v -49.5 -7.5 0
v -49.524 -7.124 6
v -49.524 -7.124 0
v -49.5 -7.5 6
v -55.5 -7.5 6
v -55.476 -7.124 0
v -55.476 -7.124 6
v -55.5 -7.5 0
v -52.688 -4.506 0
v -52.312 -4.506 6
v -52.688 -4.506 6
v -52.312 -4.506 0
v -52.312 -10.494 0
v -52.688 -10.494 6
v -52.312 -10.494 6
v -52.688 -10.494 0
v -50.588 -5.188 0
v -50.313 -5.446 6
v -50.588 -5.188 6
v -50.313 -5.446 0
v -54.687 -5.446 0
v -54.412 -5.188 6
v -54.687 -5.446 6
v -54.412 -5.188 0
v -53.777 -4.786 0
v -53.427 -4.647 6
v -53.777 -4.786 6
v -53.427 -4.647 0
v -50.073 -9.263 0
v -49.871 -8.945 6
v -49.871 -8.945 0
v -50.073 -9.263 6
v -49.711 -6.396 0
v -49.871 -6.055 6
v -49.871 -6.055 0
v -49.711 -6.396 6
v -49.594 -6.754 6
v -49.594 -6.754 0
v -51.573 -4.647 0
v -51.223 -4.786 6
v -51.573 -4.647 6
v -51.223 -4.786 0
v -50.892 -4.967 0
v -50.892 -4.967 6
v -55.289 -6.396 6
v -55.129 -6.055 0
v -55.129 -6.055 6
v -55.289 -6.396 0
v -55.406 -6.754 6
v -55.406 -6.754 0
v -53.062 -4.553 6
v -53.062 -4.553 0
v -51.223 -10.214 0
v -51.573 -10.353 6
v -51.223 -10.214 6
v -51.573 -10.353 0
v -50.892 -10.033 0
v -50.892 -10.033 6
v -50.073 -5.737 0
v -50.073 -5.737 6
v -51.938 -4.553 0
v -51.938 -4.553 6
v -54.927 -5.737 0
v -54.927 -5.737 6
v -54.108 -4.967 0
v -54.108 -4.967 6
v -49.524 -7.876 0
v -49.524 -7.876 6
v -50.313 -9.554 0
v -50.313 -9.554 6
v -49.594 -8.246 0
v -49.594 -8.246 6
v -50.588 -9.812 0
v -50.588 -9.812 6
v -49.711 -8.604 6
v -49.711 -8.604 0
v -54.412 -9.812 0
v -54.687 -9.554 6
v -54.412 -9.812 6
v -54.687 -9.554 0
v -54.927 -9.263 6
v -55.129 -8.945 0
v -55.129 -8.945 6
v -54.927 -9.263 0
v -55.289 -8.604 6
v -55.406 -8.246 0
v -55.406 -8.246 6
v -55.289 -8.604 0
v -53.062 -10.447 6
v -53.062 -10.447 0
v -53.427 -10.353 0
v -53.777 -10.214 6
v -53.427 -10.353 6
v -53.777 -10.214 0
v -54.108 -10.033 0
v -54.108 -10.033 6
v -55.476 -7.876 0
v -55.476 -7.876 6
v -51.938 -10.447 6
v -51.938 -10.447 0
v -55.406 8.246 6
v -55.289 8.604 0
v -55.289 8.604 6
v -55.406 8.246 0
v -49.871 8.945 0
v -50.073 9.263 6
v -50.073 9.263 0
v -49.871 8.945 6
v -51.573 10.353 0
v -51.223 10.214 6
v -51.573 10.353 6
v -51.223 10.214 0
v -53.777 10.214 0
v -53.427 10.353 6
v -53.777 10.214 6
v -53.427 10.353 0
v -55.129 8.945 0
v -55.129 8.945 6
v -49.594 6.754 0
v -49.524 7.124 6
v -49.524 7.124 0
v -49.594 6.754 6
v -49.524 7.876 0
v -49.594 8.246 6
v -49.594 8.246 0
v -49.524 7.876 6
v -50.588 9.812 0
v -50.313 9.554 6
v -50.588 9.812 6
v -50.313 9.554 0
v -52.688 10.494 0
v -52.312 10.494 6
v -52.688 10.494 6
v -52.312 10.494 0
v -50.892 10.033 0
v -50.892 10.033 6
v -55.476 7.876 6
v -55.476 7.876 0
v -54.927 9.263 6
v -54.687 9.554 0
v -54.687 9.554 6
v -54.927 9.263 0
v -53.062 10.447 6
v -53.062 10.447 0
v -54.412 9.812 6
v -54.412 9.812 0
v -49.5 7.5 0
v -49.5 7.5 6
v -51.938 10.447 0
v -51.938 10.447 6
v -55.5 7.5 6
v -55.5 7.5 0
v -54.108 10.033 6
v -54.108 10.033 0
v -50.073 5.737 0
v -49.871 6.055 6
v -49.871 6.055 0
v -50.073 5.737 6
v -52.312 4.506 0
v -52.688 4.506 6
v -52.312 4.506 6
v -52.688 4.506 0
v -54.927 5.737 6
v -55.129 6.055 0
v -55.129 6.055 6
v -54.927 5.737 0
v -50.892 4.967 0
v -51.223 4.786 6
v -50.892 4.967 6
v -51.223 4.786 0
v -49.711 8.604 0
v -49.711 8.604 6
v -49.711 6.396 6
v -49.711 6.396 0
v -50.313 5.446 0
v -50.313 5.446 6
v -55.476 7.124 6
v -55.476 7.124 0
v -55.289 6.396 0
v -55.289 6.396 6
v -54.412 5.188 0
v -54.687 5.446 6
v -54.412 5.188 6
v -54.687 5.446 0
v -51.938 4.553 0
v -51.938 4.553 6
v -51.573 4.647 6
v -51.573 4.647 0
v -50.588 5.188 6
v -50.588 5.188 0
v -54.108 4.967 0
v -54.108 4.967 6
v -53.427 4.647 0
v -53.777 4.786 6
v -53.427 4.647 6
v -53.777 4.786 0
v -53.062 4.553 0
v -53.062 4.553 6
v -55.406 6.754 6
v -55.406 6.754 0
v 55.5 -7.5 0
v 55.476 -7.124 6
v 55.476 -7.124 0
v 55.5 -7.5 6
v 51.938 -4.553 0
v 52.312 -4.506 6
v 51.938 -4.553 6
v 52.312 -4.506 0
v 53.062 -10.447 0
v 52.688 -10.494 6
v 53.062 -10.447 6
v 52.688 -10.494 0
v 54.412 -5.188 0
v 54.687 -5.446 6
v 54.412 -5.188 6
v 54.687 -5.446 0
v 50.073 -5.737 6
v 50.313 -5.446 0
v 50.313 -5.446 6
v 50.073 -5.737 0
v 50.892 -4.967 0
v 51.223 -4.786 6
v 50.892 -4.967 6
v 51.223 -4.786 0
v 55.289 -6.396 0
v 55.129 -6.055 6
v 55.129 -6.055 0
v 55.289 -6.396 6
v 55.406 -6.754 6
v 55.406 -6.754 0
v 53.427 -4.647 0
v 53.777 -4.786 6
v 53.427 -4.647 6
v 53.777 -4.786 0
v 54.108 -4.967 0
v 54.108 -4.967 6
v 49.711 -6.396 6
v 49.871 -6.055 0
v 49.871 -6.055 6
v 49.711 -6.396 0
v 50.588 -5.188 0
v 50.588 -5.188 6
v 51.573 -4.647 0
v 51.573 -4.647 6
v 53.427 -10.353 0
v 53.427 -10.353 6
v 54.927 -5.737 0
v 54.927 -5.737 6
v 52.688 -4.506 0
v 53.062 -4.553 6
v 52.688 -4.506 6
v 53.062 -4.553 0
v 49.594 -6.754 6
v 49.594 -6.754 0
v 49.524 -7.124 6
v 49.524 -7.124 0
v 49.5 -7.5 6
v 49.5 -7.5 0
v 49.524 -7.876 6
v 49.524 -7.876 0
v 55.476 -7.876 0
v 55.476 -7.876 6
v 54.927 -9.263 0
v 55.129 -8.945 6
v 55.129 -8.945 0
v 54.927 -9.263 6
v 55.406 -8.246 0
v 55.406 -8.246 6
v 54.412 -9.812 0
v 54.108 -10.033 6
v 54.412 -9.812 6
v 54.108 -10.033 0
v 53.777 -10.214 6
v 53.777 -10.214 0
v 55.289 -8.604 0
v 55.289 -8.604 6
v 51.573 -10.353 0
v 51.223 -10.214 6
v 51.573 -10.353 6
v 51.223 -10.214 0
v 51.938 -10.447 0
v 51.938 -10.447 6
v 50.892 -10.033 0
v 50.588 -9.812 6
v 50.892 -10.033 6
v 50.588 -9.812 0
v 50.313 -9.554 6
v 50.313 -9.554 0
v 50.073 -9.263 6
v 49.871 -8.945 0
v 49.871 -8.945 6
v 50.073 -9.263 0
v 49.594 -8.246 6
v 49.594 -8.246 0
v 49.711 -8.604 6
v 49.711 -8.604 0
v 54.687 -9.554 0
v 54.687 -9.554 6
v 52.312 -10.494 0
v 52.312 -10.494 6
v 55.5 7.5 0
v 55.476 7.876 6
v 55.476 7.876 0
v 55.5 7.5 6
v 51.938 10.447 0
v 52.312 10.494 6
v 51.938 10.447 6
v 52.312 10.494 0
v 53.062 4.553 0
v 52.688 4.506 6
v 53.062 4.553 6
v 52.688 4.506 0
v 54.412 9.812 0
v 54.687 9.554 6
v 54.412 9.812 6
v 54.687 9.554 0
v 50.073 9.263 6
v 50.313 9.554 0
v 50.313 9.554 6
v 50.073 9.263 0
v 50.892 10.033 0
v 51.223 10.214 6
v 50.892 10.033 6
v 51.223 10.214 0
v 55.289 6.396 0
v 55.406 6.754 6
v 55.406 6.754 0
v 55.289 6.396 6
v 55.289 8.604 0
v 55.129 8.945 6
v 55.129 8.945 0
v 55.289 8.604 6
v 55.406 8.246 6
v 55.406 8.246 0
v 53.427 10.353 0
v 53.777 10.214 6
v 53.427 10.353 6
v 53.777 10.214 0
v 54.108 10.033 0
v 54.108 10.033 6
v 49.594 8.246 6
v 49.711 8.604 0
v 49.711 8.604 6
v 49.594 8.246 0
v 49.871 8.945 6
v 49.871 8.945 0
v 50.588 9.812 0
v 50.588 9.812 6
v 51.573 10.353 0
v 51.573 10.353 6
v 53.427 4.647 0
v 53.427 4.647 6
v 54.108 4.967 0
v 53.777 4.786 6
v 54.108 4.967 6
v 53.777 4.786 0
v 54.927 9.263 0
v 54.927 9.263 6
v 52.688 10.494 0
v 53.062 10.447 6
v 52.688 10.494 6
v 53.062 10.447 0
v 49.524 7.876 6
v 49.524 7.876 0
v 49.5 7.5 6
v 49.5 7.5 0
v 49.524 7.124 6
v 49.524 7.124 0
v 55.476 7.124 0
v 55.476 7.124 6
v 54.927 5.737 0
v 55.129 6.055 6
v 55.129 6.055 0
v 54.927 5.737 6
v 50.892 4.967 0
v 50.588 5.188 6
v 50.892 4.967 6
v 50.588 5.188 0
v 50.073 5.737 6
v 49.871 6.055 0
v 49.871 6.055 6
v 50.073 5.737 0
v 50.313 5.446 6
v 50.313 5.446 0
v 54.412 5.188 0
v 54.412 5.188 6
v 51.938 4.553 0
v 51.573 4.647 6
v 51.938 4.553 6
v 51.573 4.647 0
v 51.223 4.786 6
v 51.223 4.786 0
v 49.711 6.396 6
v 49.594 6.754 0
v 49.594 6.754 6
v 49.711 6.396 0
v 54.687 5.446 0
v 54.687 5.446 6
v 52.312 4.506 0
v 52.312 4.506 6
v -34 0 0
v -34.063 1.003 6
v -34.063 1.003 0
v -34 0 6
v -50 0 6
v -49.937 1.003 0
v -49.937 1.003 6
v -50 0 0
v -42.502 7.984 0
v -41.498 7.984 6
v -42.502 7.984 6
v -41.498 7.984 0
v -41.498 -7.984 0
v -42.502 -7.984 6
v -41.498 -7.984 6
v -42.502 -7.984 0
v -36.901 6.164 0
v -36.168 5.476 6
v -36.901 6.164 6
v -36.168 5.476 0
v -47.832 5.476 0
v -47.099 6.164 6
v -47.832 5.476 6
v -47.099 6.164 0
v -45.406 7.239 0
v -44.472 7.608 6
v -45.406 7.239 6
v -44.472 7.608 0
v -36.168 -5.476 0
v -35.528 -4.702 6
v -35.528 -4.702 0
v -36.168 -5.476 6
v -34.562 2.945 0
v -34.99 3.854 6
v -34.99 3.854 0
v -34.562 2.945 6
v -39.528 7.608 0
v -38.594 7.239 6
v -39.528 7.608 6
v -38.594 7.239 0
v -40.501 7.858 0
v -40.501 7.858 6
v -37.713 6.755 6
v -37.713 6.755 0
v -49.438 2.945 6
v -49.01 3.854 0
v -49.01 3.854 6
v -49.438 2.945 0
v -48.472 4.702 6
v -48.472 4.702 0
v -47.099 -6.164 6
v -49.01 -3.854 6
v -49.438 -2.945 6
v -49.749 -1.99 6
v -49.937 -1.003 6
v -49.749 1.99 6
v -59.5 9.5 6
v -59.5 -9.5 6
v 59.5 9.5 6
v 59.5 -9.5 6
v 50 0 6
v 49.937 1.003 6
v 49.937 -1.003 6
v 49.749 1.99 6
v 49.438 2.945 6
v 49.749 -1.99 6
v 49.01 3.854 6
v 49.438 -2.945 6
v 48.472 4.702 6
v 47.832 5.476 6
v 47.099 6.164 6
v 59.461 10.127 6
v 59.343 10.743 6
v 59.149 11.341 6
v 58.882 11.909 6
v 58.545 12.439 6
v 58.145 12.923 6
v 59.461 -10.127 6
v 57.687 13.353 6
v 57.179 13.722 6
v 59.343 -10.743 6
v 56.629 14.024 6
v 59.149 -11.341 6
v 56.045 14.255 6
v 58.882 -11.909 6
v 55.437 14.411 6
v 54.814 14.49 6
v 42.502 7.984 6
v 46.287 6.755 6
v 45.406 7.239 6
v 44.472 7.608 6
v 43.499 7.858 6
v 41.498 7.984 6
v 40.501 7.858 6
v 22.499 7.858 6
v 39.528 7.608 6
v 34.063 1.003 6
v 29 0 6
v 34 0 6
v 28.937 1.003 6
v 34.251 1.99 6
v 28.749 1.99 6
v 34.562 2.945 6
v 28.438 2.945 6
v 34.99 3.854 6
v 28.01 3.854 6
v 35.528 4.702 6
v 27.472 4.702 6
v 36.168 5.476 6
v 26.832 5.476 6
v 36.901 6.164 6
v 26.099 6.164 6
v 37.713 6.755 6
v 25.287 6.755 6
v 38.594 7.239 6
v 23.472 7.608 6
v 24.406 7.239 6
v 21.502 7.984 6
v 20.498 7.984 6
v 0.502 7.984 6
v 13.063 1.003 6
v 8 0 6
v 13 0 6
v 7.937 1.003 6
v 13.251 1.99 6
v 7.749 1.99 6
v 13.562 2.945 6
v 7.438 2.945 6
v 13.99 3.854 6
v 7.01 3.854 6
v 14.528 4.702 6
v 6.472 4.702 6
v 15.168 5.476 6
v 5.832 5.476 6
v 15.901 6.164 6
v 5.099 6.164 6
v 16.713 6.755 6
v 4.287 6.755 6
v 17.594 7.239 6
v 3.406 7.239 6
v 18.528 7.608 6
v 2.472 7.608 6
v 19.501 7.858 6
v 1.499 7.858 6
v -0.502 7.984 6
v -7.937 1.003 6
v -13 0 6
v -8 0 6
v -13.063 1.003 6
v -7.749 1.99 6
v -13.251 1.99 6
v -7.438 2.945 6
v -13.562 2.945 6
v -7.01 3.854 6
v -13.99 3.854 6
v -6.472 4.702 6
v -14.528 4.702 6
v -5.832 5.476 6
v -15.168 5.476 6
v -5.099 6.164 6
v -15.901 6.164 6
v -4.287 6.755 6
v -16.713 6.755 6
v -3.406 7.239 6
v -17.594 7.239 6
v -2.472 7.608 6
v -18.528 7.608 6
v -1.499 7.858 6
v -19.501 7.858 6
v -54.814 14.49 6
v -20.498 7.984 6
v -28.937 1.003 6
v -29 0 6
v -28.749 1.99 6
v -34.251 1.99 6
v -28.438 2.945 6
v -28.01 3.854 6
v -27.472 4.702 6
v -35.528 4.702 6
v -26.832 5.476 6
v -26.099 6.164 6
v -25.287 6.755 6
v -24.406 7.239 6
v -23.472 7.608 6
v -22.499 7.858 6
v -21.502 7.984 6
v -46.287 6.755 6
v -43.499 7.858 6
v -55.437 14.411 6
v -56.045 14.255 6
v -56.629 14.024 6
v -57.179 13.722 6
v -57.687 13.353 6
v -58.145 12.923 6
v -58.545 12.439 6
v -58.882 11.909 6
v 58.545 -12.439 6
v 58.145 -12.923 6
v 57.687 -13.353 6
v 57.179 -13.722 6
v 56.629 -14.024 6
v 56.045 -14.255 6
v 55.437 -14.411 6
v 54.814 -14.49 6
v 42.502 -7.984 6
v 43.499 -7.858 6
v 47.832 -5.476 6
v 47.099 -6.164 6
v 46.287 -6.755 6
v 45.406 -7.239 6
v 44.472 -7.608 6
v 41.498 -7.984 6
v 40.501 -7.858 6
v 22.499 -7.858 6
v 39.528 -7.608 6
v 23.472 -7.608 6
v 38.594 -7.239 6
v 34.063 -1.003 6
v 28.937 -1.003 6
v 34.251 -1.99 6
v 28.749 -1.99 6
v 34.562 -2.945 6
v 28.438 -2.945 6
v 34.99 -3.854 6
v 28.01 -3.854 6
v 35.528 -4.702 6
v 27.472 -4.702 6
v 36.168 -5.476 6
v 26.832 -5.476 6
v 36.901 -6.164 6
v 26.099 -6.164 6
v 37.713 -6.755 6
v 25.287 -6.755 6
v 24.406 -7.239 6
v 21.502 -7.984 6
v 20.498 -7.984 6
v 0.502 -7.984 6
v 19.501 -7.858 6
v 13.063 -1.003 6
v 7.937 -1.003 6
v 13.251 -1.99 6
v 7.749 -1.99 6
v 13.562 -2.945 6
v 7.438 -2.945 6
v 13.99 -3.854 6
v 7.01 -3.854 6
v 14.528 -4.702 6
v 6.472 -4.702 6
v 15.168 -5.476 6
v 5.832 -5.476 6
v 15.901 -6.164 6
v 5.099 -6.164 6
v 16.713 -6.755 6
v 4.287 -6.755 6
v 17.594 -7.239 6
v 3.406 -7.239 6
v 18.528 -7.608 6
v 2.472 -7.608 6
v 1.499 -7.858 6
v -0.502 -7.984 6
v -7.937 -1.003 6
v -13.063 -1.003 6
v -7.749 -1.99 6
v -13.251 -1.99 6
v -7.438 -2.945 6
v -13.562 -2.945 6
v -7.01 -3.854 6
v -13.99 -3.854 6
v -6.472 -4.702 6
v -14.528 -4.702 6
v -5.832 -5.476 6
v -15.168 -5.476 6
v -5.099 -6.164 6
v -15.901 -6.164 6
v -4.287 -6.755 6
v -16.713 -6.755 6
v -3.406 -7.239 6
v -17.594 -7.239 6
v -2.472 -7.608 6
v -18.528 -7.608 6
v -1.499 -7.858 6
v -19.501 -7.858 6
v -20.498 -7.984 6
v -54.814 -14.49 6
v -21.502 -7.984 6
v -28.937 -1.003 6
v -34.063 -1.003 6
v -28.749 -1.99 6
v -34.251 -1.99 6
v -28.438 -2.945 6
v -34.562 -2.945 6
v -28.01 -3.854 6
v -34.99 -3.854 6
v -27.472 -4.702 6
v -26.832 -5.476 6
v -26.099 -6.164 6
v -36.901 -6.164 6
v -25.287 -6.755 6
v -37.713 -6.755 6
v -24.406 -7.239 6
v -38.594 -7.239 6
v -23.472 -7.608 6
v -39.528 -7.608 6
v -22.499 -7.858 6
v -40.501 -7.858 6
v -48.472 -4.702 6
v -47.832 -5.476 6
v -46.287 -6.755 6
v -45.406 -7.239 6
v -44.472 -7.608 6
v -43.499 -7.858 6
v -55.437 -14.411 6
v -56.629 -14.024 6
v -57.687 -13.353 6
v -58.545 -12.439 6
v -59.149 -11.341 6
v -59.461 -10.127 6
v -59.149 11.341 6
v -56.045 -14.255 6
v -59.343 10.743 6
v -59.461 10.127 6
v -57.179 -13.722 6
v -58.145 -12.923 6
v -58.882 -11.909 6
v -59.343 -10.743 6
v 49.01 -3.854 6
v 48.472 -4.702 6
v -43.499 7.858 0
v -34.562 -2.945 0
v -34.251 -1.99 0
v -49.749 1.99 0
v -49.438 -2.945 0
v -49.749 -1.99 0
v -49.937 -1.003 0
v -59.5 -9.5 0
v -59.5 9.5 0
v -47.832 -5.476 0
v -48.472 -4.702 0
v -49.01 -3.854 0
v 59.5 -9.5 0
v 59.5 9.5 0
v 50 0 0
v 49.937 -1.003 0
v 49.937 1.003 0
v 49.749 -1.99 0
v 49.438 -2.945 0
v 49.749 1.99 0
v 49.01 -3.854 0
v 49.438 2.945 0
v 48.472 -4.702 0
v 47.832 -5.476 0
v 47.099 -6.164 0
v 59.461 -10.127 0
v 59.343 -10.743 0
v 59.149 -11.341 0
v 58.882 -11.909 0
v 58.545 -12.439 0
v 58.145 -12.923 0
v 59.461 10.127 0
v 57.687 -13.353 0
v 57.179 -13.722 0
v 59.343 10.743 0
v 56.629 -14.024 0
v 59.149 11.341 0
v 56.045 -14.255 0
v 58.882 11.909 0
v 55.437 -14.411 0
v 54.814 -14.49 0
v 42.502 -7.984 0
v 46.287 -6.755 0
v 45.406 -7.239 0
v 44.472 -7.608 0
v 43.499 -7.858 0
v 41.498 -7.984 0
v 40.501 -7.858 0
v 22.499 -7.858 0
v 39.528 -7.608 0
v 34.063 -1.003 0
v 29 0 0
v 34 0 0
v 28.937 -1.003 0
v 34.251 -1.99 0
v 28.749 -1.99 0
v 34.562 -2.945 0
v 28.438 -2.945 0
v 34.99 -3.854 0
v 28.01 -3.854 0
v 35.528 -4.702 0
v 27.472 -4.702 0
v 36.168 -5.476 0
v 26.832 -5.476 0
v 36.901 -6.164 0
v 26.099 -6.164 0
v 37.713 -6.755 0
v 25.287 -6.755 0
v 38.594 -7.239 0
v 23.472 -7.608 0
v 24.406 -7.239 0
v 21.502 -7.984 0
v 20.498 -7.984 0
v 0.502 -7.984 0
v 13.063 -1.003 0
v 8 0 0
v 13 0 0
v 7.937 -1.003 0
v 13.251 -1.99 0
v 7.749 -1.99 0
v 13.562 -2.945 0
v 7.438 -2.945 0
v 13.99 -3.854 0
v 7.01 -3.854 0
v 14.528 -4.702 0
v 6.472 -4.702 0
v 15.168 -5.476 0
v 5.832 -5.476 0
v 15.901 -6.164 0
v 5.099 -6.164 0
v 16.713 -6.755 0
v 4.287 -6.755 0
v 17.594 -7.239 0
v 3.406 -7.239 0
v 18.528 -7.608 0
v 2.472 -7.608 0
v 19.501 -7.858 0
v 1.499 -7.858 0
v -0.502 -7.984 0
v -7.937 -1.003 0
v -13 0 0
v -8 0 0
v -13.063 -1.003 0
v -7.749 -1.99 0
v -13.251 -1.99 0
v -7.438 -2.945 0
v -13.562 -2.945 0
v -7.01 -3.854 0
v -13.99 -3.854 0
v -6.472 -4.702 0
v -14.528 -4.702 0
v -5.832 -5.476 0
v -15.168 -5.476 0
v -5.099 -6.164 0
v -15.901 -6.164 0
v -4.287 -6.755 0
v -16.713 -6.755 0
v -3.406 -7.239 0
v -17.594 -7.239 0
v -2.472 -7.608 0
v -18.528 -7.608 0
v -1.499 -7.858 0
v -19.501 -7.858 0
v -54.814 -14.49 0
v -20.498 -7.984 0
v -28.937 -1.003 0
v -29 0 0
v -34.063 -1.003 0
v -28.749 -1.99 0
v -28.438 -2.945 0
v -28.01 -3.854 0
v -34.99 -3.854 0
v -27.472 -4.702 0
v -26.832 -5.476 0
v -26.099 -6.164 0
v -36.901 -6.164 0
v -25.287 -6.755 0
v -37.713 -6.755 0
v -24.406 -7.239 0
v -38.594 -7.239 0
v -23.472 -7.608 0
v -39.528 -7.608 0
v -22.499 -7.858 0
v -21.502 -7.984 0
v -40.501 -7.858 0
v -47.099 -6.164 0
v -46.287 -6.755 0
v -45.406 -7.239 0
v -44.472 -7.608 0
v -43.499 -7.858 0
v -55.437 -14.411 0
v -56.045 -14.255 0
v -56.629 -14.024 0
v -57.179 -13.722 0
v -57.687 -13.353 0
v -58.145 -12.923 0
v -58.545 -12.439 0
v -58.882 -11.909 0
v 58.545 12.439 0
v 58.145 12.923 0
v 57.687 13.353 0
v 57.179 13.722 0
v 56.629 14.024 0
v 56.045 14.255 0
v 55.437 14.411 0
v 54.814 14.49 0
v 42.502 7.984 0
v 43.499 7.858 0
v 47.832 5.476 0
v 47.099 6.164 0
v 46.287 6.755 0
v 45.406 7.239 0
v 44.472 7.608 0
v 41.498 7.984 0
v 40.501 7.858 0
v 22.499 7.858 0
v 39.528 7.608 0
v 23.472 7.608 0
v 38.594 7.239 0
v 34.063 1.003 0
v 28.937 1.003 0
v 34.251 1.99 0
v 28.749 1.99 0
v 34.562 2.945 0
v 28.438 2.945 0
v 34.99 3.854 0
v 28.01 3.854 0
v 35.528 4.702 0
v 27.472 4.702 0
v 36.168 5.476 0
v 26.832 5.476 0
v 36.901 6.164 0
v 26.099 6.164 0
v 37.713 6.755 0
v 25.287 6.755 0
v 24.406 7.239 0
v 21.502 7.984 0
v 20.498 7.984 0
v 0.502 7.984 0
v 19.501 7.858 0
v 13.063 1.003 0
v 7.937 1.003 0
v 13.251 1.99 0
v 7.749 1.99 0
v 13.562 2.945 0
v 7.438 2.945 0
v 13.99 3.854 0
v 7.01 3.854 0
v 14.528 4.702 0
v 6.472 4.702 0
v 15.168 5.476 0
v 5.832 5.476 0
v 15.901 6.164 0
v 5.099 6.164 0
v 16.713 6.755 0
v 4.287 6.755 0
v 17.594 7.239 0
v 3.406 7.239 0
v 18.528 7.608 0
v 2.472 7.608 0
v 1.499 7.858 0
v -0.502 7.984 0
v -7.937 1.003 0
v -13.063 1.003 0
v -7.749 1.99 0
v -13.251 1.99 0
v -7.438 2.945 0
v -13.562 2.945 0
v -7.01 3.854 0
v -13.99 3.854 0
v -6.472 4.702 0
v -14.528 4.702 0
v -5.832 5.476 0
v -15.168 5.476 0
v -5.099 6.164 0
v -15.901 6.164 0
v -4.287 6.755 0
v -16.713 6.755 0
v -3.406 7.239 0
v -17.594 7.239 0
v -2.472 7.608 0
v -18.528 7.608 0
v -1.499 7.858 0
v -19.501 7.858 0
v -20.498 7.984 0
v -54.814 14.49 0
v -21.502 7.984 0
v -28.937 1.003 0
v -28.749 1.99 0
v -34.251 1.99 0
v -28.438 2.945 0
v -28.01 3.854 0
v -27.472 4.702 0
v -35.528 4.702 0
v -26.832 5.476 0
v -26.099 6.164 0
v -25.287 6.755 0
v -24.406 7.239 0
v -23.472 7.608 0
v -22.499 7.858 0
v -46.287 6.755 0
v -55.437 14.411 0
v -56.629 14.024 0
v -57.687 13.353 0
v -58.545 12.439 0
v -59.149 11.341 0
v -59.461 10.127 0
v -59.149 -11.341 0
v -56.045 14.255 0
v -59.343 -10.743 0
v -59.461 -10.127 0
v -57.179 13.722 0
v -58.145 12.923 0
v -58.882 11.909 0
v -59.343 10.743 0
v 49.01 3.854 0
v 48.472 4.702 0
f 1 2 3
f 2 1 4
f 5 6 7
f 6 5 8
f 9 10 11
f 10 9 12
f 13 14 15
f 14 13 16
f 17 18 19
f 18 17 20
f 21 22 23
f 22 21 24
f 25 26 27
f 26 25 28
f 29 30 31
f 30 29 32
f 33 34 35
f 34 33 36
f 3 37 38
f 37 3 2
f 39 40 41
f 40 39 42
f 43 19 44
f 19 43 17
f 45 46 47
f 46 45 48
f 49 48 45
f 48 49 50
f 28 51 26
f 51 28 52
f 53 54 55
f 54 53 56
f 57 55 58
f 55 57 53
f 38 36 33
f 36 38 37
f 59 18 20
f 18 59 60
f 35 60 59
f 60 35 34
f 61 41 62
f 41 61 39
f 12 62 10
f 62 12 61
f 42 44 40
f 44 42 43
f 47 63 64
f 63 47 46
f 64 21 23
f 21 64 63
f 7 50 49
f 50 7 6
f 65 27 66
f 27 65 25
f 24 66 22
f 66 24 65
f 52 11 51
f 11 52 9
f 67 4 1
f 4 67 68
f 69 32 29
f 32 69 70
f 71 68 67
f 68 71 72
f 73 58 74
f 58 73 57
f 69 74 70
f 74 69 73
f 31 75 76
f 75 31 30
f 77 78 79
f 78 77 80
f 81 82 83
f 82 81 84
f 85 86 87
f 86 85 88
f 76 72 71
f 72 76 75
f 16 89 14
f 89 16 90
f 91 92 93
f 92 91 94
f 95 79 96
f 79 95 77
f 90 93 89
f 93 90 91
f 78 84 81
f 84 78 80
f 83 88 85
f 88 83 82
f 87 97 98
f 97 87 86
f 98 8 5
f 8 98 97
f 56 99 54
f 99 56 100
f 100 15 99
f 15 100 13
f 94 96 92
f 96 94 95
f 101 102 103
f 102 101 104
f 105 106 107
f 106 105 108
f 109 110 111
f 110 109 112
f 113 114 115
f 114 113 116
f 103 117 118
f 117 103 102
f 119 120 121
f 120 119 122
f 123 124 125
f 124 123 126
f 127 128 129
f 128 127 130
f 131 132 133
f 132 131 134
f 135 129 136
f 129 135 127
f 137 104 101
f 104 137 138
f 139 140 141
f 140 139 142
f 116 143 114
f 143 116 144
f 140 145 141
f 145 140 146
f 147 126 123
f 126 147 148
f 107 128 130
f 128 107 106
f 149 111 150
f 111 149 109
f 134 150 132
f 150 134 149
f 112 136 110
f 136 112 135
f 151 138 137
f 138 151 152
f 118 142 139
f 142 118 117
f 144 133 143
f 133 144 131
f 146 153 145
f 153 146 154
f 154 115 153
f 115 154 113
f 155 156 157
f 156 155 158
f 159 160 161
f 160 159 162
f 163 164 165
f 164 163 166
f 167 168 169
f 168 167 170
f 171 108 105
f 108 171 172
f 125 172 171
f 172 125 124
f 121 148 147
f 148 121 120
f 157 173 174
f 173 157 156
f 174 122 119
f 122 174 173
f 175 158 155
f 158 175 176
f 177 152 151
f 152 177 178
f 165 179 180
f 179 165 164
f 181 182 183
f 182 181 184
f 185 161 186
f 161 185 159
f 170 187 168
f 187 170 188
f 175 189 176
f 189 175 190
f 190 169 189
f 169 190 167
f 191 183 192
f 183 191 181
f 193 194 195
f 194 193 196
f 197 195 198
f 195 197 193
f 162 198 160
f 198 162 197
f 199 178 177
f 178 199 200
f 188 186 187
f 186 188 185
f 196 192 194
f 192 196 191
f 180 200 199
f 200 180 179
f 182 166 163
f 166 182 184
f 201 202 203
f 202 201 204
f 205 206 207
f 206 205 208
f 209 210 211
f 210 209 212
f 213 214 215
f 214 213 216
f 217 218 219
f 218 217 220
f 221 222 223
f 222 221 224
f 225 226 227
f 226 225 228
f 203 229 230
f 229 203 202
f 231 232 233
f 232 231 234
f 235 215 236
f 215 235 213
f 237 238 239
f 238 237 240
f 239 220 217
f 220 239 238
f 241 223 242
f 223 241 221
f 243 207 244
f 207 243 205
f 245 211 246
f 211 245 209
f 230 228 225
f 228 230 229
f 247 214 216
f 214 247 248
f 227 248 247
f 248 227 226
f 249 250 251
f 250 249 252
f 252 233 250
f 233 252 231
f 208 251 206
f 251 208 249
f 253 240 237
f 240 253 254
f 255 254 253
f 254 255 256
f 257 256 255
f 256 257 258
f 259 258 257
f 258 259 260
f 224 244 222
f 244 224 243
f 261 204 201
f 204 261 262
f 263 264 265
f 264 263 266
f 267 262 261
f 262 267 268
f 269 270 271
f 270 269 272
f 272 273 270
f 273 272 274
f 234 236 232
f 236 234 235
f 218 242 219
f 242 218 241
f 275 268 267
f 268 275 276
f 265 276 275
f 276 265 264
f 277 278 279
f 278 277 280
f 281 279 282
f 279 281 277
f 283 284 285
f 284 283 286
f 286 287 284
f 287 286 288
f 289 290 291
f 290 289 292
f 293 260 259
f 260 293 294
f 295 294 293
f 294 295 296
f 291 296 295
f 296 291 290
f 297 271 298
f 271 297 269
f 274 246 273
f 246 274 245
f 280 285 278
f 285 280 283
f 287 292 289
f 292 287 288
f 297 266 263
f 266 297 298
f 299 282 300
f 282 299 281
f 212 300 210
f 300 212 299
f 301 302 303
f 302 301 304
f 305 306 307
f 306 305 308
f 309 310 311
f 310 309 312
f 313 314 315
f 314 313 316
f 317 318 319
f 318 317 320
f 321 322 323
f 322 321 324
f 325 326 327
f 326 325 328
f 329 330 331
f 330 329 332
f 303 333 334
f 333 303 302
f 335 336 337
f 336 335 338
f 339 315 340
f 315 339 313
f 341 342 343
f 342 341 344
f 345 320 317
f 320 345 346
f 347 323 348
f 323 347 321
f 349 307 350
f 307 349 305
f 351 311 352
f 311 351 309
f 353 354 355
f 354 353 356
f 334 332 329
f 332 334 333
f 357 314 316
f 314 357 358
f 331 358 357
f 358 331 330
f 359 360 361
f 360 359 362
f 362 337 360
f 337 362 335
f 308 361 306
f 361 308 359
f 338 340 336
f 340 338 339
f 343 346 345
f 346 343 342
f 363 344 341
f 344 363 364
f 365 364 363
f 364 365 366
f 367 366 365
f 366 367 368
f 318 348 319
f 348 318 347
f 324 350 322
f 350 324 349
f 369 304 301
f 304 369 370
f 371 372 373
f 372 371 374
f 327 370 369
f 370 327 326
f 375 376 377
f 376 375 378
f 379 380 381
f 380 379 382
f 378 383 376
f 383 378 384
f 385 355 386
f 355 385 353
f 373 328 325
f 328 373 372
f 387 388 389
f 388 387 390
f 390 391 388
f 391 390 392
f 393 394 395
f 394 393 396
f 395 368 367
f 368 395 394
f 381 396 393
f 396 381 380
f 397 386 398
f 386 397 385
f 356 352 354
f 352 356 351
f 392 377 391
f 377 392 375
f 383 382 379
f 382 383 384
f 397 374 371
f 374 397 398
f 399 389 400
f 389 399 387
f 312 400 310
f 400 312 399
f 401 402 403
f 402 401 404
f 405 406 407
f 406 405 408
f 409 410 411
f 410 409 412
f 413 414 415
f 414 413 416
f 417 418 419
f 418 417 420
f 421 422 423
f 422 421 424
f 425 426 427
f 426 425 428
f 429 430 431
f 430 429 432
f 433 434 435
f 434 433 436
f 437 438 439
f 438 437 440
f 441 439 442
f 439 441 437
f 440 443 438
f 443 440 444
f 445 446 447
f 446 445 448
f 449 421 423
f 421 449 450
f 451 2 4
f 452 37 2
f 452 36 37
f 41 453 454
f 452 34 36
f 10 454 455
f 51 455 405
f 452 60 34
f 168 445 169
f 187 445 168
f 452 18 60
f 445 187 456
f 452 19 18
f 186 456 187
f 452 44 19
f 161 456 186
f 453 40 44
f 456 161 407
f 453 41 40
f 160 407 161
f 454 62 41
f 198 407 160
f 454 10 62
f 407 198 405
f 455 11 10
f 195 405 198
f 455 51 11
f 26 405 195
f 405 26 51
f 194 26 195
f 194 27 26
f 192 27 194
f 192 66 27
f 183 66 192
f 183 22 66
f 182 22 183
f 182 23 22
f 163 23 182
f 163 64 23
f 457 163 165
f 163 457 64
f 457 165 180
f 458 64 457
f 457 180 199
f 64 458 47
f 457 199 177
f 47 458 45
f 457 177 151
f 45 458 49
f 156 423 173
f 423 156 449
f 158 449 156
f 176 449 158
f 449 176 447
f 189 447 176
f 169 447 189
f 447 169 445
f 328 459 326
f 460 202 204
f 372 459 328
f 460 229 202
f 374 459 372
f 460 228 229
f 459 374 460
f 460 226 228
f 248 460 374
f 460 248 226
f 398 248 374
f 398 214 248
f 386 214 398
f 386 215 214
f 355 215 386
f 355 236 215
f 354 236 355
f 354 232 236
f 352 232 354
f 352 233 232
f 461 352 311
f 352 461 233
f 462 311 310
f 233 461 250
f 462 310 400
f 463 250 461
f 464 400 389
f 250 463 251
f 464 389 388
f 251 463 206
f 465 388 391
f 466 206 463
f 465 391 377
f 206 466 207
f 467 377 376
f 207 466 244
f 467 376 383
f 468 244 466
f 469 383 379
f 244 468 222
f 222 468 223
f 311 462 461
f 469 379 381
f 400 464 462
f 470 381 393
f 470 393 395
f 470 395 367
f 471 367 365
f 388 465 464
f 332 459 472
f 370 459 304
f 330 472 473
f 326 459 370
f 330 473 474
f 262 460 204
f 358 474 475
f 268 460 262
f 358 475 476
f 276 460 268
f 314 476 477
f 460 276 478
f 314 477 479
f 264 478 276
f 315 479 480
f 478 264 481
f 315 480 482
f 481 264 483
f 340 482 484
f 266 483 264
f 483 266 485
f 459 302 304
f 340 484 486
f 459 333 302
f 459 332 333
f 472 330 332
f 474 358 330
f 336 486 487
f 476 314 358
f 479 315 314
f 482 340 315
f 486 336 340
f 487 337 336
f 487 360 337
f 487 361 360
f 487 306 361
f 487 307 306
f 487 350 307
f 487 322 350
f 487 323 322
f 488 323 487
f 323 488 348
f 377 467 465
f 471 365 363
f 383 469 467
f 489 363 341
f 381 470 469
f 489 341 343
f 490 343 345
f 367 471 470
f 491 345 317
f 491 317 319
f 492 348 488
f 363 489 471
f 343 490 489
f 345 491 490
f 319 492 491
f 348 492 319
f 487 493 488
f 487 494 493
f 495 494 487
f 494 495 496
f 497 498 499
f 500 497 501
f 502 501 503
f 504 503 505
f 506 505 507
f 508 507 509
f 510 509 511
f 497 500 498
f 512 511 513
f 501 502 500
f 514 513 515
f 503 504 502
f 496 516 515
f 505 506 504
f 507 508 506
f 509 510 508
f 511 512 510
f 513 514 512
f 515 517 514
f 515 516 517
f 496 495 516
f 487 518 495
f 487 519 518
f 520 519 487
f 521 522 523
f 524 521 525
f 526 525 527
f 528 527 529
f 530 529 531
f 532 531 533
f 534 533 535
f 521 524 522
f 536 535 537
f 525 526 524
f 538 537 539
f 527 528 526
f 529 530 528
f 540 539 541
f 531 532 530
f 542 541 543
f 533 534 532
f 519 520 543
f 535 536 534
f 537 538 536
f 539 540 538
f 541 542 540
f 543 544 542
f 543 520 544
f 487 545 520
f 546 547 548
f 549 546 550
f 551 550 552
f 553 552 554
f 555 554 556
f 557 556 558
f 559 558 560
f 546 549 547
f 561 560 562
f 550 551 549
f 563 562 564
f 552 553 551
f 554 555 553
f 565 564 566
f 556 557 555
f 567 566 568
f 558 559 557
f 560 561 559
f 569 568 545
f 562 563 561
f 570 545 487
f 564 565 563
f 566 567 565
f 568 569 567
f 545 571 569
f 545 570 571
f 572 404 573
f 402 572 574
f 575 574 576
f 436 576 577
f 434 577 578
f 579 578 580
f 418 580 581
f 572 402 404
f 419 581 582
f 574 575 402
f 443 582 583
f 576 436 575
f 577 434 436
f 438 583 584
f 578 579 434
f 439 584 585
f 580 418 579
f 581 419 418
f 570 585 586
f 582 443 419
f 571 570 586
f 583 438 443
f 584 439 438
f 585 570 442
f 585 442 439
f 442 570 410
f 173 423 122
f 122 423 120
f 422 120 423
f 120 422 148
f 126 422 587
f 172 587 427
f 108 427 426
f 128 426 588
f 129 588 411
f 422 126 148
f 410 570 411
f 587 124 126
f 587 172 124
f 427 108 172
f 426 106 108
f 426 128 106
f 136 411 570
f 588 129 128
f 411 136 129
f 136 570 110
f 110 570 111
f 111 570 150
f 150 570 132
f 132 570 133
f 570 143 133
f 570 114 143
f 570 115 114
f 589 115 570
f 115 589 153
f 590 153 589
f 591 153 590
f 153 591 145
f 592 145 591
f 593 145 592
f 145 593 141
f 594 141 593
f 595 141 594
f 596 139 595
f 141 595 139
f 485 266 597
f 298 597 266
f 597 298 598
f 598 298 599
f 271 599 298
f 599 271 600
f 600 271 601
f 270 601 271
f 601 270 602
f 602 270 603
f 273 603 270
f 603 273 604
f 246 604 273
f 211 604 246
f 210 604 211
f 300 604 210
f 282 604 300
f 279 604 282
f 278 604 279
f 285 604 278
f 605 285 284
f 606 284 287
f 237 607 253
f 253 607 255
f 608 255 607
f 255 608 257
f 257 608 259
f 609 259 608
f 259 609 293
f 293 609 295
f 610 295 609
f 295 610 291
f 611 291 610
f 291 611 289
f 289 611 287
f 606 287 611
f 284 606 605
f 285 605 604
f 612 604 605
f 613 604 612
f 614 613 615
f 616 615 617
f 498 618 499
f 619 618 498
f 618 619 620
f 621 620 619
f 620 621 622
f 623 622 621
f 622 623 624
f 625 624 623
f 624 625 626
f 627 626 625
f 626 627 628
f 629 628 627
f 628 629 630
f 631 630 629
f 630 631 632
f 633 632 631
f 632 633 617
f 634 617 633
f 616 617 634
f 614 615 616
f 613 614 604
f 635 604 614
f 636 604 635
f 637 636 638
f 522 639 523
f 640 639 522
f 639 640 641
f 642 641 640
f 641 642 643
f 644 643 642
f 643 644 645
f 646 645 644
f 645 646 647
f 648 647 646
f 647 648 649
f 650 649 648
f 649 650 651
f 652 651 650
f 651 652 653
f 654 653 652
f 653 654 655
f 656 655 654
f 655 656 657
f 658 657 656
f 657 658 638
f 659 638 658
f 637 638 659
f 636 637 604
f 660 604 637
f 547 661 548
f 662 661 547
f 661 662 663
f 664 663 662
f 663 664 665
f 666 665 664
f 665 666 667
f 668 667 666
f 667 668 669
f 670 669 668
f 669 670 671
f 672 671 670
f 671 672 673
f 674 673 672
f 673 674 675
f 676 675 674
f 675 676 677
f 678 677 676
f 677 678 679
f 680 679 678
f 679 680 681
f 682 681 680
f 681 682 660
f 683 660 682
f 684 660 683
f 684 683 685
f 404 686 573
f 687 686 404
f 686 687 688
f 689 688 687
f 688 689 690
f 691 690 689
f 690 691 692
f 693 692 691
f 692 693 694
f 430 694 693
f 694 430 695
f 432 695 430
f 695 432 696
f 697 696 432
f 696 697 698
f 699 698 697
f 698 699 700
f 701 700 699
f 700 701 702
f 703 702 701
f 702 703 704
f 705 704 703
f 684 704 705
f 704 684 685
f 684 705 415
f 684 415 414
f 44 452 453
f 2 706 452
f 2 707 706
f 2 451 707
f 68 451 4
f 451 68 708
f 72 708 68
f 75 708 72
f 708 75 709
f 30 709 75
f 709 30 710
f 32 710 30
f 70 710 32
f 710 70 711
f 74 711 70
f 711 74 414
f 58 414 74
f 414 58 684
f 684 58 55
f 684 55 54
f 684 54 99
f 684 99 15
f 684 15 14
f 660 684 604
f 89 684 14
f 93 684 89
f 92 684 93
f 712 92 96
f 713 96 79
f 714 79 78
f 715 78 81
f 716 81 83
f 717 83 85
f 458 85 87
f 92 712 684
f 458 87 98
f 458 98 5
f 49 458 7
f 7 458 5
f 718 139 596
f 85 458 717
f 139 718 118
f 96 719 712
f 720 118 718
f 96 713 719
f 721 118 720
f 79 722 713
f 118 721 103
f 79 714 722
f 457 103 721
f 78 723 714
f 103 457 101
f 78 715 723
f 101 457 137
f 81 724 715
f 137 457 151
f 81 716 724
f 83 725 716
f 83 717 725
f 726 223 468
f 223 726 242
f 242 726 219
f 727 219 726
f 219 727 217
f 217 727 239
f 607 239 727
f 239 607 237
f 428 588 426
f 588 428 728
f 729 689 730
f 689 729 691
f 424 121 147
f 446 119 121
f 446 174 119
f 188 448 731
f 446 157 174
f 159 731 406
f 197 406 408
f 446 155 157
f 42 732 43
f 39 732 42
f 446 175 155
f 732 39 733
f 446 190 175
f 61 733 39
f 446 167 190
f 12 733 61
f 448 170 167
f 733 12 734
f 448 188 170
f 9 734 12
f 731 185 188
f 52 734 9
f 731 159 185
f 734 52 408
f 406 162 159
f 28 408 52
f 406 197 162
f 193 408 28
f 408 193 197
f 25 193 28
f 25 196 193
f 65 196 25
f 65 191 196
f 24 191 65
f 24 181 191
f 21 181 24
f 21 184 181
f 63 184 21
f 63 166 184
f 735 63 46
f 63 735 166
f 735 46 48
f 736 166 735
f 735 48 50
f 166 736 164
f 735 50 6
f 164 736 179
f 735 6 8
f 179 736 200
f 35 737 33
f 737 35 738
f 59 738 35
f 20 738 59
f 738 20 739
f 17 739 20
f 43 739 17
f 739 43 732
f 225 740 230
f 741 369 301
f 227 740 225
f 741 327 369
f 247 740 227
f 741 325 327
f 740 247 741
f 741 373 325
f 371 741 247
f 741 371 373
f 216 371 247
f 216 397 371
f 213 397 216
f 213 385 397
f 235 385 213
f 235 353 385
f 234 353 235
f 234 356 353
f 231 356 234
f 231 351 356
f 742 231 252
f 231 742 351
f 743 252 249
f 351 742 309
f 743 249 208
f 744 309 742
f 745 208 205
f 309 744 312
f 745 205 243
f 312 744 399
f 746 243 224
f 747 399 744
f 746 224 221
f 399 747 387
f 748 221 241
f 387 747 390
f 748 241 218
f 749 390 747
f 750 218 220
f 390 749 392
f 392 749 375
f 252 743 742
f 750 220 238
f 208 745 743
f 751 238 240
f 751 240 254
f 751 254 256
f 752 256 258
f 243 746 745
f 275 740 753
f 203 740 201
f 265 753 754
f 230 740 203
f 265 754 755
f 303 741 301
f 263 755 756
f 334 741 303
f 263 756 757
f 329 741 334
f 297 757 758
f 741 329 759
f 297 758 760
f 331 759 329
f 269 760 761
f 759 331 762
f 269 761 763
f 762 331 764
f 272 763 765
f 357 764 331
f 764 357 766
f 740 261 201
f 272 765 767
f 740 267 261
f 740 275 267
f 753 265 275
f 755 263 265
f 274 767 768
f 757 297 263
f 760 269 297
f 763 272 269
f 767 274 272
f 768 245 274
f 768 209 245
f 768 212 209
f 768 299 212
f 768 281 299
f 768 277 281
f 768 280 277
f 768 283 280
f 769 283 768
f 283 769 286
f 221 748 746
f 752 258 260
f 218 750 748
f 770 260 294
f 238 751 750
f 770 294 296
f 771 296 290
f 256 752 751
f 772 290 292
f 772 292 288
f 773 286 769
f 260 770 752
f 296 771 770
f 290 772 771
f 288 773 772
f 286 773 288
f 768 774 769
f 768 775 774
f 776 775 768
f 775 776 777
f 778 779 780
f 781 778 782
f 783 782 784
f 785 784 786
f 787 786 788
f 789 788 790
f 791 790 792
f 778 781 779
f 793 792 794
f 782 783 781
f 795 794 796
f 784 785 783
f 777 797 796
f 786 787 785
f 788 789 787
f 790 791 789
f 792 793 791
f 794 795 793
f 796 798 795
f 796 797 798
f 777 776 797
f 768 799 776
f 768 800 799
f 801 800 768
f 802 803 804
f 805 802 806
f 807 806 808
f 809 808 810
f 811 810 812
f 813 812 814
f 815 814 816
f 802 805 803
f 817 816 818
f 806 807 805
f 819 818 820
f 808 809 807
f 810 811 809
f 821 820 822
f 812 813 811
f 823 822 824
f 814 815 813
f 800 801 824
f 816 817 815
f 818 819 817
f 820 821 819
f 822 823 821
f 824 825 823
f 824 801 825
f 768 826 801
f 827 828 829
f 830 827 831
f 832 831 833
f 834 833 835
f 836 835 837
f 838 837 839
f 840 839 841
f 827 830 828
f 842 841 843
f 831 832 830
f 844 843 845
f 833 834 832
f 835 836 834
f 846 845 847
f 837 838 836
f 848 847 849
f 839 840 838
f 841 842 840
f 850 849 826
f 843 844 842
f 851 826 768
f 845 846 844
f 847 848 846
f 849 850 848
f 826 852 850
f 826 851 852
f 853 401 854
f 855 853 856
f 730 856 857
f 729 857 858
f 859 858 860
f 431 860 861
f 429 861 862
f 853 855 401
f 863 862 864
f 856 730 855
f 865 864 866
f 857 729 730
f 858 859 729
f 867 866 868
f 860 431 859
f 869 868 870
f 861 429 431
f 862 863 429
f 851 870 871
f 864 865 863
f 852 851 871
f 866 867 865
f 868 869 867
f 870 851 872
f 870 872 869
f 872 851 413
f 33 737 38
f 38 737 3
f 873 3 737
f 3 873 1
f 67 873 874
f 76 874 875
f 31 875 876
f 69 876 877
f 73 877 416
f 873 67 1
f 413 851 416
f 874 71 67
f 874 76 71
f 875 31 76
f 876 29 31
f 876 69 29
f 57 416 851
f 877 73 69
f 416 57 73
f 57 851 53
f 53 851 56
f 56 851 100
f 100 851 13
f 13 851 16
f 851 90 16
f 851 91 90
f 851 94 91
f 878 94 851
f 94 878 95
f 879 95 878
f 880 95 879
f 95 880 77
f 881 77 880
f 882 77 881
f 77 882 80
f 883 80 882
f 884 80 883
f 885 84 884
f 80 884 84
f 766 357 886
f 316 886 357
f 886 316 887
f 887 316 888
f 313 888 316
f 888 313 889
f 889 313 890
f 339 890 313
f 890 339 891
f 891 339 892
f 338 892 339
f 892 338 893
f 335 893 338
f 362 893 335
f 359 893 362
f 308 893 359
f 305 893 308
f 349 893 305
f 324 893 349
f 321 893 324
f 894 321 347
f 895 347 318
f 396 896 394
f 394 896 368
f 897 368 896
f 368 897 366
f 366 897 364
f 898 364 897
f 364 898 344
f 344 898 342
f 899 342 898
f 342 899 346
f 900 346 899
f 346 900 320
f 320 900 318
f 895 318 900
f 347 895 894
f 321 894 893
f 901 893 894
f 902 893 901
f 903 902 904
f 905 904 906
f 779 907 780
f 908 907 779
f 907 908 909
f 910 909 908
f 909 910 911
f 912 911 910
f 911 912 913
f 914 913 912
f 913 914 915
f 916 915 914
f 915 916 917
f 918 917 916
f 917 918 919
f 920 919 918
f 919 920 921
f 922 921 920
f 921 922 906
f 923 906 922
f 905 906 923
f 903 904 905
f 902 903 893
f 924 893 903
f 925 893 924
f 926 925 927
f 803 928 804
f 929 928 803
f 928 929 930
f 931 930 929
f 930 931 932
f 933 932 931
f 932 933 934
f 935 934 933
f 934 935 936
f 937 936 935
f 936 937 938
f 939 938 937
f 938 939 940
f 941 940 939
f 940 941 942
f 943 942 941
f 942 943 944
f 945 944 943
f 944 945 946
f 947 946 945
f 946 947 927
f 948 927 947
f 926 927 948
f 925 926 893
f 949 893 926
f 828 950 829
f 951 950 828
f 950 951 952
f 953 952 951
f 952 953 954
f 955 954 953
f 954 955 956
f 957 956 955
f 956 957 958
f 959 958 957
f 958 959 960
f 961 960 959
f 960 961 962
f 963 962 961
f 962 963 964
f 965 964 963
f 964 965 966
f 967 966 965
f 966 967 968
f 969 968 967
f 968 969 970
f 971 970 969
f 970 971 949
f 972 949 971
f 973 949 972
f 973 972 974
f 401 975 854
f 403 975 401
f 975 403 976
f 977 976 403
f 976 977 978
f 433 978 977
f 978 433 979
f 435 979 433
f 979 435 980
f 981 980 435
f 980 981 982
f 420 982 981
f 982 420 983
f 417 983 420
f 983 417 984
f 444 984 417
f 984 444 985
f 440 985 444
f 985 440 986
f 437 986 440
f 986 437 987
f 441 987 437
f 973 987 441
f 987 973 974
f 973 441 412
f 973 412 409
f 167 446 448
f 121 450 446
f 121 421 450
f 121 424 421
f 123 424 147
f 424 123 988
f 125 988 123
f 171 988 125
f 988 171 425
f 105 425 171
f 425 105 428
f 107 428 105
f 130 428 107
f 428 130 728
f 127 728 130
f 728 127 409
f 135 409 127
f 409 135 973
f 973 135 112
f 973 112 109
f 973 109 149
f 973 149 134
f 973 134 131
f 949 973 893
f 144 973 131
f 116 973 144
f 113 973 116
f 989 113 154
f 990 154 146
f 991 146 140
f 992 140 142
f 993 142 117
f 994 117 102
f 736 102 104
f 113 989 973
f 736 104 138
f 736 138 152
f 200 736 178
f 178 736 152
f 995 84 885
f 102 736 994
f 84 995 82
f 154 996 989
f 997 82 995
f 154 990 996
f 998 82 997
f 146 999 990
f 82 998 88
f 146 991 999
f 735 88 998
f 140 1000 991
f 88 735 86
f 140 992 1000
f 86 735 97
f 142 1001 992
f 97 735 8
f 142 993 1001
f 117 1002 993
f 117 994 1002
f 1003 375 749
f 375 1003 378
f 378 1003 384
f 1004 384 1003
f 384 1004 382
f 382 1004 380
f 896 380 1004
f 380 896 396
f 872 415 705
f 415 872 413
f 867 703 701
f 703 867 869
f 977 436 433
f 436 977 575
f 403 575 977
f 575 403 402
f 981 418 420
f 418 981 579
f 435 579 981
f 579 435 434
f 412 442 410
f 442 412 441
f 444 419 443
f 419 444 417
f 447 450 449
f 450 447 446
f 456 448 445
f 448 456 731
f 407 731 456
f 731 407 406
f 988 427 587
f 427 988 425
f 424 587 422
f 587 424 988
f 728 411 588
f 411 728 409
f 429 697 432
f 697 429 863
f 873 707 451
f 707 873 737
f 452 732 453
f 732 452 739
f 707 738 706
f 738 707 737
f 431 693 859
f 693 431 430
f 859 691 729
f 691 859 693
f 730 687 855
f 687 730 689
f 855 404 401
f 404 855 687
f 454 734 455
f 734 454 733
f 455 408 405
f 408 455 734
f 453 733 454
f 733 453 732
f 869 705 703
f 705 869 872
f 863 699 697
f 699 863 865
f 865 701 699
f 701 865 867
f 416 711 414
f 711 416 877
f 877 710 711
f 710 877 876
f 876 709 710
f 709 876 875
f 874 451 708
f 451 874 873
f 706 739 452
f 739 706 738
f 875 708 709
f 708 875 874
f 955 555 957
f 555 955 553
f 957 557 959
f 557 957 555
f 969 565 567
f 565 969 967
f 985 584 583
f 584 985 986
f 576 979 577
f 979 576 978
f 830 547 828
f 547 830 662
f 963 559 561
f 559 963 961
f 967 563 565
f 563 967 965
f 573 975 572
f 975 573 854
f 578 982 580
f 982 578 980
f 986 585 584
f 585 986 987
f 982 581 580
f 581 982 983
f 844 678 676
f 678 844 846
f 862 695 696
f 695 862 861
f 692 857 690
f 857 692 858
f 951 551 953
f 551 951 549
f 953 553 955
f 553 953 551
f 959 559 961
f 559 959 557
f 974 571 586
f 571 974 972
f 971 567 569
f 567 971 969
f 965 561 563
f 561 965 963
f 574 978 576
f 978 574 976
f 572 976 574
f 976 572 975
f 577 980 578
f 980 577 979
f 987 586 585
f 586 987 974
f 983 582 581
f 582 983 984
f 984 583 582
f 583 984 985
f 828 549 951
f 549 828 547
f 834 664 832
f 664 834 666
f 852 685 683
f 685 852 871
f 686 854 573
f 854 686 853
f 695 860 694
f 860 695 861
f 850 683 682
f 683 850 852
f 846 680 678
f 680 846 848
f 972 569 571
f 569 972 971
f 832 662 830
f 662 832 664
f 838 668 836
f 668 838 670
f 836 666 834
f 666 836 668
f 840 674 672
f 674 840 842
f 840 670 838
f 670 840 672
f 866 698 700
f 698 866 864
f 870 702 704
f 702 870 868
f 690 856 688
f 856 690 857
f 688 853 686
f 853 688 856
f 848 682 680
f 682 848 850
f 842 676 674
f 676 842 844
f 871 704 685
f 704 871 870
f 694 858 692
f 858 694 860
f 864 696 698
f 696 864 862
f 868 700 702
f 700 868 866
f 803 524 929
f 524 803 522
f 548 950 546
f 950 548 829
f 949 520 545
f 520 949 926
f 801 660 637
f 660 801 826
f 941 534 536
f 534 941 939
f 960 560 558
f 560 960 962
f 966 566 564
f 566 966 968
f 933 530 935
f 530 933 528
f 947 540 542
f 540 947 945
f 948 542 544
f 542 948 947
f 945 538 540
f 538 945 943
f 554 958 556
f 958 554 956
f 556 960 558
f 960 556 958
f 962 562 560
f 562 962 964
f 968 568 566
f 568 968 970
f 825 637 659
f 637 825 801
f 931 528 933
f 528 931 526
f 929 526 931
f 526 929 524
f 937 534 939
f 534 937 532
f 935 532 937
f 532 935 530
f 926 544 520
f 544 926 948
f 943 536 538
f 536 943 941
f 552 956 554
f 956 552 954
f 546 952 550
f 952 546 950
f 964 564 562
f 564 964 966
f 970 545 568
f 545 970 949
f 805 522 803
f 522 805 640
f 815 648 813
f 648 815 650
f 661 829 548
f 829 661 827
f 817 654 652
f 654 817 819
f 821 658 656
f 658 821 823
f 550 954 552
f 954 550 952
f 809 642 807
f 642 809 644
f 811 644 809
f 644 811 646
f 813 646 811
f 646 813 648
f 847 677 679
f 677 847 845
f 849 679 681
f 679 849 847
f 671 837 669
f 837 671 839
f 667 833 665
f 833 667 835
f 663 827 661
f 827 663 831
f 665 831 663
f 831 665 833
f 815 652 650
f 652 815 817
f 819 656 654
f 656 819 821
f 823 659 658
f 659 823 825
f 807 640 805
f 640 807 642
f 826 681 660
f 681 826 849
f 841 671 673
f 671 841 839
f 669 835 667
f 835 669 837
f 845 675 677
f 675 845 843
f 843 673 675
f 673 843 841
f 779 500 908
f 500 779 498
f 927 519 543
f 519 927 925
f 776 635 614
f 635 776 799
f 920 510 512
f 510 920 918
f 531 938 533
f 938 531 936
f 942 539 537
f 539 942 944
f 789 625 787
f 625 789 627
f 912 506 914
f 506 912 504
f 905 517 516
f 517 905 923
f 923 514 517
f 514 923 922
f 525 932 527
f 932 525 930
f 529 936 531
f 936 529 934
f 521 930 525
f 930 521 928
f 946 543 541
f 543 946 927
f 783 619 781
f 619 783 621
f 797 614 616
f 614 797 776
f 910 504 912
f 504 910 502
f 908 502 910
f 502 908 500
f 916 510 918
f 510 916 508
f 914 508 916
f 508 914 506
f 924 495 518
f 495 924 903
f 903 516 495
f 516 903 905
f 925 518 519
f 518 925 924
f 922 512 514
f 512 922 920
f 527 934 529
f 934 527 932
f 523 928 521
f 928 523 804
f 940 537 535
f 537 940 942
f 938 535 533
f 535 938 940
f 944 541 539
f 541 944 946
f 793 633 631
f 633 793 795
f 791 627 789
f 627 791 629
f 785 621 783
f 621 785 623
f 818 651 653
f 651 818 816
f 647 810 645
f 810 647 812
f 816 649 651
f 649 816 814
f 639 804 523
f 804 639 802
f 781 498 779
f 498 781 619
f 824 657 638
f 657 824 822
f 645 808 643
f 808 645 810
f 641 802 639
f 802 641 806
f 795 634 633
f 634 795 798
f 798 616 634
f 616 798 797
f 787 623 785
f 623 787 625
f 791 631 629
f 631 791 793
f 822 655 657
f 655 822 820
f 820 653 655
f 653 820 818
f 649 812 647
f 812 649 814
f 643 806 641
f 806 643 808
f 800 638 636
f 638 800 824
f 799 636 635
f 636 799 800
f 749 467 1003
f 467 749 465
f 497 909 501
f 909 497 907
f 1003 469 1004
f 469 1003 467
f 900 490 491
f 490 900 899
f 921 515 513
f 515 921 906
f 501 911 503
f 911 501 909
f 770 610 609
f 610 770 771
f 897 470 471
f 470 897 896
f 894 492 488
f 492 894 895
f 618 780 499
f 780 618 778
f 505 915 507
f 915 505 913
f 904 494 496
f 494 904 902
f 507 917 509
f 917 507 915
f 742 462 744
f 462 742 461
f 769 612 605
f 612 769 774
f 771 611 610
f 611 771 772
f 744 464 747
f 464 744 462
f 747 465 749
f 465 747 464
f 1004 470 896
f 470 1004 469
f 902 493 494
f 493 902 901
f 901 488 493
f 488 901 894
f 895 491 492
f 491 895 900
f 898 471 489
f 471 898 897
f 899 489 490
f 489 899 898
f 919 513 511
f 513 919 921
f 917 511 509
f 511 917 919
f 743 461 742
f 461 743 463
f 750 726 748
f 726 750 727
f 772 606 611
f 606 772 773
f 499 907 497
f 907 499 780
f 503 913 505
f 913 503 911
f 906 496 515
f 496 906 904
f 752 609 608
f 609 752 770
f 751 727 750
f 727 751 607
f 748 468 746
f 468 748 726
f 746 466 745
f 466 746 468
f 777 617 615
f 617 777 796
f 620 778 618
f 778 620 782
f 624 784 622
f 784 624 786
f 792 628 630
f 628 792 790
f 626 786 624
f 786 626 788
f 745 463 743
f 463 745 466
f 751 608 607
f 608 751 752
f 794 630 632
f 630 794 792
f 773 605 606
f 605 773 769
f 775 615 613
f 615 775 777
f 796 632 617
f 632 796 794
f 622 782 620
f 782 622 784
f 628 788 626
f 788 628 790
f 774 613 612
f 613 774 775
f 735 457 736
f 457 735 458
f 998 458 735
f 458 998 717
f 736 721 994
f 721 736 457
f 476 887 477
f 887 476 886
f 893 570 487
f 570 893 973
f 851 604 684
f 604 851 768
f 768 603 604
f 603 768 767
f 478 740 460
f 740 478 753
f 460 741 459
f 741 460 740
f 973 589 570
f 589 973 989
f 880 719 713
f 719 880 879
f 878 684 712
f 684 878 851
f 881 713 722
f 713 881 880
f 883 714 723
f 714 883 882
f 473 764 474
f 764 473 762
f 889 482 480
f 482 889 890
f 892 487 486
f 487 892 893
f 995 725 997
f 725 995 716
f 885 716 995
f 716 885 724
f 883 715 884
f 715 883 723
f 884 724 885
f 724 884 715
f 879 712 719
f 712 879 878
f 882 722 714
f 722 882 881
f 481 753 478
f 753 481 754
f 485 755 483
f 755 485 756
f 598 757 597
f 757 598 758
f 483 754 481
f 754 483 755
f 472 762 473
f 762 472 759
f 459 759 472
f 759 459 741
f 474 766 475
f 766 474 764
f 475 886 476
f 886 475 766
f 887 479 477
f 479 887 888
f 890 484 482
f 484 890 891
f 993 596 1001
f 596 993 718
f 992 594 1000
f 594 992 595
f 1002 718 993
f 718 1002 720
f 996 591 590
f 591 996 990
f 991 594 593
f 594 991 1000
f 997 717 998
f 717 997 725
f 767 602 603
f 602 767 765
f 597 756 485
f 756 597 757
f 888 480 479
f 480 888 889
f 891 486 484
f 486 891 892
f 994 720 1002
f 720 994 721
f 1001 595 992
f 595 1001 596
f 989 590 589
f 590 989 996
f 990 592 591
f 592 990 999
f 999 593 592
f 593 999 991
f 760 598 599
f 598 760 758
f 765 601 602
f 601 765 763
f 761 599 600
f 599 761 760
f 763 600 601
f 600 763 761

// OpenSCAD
$fn = 50;


difference() {
	union() {
		hull() {
			translate(v = [-54.5000000000, 9.5000000000, 0]) {
				cylinder(h = 6, r = 5);
			}
			translate(v = [54.5000000000, 9.5000000000, 0]) {
				cylinder(h = 6, r = 5);
			}
			translate(v = [-54.5000000000, -9.5000000000, 0]) {
				cylinder(h = 6, r = 5);
			}
			translate(v = [54.5000000000, -9.5000000000, 0]) {
				cylinder(h = 6, r = 5);
			}
		}
	}
	union() {
		#translate(v = [-52.5000000000, -7.5000000000, -100.0000000000]) {
			cylinder(h = 200, r = 3.0000000000);
		}
		#translate(v = [-52.5000000000, 7.5000000000, -100.0000000000]) {
			cylinder(h = 200, r = 3.0000000000);
		}
		#translate(v = [52.5000000000, -7.5000000000, -100.0000000000]) {
			cylinder(h = 200, r = 3.0000000000);
		}
		#translate(v = [52.5000000000, 7.5000000000, -100.0000000000]) {
			cylinder(h = 200, r = 3.0000000000);
		}
		#translate(v = [-42.0000000000, 0, 0]) {
			cylinder(h = 6, r = 8.0000000000);
		}
		#translate(v = [-21.0000000000, 0, 0]) {
			cylinder(h = 6, r = 8.0000000000);
		}
		#cylinder(h = 6, r = 8.0000000000);
		#translate(v = [21.0000000000, 0, 0]) {
			cylinder(h = 6, r = 8.0000000000);
		}
		#translate(v = [42.0000000000, 0, 0]) {
			cylinder(h = 6, r = 8.0000000000);
		}
	}
}
